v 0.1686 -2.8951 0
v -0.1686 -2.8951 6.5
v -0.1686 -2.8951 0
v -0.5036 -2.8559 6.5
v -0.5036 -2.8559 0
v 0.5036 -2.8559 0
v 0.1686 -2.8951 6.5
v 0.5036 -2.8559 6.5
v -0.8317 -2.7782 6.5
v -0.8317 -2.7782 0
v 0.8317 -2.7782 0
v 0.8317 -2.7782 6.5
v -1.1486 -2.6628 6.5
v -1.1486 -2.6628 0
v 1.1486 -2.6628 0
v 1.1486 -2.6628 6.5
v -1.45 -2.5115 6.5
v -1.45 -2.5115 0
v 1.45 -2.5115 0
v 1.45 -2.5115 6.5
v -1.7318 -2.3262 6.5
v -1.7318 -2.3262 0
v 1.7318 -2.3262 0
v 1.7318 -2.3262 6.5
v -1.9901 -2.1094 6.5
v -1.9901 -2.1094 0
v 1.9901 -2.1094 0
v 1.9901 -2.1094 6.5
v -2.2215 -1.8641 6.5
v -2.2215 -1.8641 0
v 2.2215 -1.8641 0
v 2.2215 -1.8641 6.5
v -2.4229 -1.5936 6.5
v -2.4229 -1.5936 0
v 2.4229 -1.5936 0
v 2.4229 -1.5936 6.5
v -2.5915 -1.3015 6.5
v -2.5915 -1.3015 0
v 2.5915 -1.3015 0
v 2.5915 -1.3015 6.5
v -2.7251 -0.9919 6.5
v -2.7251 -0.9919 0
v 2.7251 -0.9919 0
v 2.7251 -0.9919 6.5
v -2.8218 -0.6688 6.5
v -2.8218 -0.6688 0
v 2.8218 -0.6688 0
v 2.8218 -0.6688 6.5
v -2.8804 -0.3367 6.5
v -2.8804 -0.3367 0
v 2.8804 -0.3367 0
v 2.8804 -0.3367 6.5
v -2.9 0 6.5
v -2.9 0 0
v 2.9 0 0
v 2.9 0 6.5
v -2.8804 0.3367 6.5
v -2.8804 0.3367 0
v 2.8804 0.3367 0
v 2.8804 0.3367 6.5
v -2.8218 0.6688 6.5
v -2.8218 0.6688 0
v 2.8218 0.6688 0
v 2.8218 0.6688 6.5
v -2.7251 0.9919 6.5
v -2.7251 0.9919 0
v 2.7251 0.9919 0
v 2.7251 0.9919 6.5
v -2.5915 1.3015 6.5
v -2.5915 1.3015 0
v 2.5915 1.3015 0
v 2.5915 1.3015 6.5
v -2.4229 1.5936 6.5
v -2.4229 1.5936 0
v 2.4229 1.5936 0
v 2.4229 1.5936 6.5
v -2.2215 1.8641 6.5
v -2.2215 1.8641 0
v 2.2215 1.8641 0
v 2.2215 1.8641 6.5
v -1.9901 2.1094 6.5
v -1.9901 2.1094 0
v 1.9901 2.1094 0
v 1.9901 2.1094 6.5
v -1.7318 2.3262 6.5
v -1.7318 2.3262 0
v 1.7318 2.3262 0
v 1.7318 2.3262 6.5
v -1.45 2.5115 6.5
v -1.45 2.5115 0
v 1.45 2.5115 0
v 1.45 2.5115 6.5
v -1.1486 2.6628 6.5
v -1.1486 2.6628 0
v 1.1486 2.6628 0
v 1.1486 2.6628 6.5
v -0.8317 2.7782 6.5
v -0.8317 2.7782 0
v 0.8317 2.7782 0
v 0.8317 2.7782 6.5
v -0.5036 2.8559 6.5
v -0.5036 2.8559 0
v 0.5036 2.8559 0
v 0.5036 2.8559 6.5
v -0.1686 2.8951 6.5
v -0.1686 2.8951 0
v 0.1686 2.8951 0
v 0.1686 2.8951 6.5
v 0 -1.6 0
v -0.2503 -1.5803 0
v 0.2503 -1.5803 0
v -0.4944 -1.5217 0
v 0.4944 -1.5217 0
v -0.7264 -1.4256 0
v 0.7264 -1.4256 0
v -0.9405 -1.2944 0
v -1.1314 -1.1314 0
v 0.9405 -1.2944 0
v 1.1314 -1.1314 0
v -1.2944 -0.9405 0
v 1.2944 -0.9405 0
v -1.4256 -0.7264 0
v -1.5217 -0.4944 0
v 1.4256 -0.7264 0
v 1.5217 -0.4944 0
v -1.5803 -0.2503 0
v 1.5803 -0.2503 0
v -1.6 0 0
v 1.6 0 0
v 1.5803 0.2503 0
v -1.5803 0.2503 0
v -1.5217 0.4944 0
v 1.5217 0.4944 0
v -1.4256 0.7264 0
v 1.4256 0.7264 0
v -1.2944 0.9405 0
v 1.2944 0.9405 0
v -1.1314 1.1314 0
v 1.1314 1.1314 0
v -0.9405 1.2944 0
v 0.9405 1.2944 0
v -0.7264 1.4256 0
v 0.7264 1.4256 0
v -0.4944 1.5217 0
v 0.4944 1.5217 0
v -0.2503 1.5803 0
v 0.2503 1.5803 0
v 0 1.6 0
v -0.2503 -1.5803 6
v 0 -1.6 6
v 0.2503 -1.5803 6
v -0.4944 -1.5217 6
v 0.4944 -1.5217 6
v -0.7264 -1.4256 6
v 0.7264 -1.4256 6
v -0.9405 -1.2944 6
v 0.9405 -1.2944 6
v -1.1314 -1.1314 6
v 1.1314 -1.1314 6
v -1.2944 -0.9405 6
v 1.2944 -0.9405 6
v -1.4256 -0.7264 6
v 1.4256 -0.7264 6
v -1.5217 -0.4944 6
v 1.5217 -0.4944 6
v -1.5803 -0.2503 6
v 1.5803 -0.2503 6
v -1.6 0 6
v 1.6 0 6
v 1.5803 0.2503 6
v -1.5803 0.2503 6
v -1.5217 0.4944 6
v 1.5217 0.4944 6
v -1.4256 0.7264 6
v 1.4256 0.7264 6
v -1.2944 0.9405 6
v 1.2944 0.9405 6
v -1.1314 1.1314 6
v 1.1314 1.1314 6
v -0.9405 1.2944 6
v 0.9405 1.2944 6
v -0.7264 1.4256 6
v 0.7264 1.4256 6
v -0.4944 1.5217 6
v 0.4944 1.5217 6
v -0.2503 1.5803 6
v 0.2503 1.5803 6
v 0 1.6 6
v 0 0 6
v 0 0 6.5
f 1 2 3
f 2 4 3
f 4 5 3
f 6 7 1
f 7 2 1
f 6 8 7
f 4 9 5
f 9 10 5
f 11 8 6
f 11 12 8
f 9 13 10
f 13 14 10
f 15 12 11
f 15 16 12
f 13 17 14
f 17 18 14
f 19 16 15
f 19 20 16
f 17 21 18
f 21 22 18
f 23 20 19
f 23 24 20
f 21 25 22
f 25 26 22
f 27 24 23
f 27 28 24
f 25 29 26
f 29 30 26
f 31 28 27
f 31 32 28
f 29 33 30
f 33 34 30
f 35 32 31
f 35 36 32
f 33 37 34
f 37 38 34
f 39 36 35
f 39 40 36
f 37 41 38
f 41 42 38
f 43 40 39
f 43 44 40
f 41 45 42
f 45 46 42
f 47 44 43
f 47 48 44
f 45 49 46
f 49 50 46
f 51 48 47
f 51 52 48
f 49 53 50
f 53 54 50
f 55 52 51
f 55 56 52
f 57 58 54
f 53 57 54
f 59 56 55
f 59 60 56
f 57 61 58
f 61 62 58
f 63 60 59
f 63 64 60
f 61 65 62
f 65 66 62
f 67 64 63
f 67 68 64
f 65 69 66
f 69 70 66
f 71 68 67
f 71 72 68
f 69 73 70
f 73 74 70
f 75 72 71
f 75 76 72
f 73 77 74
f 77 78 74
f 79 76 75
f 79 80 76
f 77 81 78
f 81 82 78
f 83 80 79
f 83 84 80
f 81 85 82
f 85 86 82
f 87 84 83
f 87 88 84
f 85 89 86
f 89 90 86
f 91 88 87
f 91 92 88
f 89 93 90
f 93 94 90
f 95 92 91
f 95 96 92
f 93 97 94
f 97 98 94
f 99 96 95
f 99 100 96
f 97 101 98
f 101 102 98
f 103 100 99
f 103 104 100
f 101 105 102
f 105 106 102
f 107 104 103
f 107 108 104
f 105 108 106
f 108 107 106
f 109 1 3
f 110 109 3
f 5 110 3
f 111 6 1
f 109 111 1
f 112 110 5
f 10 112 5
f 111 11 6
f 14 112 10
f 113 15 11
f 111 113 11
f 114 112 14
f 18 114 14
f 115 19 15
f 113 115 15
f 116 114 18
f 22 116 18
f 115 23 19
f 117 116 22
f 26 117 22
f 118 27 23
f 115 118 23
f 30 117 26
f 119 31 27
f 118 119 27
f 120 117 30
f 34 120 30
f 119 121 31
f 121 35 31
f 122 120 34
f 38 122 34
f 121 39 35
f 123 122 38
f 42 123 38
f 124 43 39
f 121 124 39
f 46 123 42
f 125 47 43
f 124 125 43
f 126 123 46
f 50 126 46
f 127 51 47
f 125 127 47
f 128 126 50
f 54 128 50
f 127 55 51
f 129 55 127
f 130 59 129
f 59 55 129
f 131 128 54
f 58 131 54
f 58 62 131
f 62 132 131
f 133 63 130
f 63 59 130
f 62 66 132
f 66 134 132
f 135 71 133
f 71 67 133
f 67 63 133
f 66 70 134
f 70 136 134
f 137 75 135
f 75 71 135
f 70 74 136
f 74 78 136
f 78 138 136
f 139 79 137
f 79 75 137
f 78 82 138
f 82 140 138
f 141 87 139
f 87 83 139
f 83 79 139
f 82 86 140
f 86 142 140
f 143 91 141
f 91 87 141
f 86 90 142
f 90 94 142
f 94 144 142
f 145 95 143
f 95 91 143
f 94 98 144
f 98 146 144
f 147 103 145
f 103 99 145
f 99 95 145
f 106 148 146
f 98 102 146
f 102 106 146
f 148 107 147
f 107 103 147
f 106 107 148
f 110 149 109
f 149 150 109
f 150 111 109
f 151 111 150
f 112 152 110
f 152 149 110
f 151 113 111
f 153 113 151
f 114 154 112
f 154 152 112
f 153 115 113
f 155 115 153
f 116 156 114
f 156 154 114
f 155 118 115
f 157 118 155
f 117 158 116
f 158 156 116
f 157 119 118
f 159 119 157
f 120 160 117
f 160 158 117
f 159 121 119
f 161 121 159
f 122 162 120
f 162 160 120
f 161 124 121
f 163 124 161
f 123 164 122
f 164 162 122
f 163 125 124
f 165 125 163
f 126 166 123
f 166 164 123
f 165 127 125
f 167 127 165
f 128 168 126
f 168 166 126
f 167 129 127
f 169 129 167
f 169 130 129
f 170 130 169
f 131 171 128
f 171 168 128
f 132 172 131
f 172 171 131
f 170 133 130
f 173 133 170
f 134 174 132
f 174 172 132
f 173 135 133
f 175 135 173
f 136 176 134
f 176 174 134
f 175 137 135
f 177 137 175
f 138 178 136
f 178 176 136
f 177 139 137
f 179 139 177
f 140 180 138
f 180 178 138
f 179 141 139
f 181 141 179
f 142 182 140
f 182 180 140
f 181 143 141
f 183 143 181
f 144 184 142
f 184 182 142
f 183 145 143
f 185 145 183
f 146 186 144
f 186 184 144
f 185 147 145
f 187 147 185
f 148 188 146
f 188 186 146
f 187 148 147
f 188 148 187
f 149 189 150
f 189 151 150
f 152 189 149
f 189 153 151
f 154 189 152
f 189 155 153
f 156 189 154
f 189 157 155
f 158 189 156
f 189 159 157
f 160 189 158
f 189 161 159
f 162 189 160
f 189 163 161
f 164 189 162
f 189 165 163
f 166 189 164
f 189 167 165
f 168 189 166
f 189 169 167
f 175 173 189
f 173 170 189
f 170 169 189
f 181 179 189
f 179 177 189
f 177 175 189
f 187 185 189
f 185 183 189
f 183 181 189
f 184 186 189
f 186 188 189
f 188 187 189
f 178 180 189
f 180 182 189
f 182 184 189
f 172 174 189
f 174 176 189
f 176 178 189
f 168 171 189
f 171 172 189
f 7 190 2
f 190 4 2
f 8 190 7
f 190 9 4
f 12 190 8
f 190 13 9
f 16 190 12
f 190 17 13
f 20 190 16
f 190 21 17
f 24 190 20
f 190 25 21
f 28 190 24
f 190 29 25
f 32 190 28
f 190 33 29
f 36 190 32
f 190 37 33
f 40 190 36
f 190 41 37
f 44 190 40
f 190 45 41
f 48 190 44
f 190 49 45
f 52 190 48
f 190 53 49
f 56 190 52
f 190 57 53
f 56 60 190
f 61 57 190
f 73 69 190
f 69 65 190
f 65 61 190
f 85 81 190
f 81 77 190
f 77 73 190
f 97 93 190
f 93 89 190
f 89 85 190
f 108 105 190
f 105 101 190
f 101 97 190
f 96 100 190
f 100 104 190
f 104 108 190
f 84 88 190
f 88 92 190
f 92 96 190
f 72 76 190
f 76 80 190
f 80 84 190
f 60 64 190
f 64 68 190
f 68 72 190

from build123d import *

# Parameters (mm, degrees)
SZKIC1_R                    = 2.9
DODANIE_WYCI_GNI_CIE1_DEPTH = 6
SZKIC2_R                    = 1.6
WYTNIJ_WYCI_GNI_CIE1_DEPTH  = 6
SZKIC3_R                    = 2.9
DODANIE_WYCI_GNI_CIE2_DEPTH = 0.5


with BuildPart() as part:
    # Szkic1 → Dodanie-wyciągnięcie1 (new body)
    with BuildSketch(Plane.XY):
        Circle(SZKIC1_R)
    extrude(amount=DODANIE_WYCI_GNI_CIE1_DEPTH)

    # Szkic2 → Wytnij-wyciągnięcie1 (cut)
    with BuildSketch(Plane.XY.offset(6)):
        Circle(SZKIC2_R)
    extrude(amount=-WYTNIJ_WYCI_GNI_CIE1_DEPTH, mode=Mode.SUBTRACT)

    # Szkic3 → Dodanie-wyciągnięcie2 (add)
    with BuildSketch(Plane.XY.offset(6)):
        Circle(SZKIC3_R)
    extrude(amount=DODANIE_WYCI_GNI_CIE2_DEPTH)


solid = part.part
